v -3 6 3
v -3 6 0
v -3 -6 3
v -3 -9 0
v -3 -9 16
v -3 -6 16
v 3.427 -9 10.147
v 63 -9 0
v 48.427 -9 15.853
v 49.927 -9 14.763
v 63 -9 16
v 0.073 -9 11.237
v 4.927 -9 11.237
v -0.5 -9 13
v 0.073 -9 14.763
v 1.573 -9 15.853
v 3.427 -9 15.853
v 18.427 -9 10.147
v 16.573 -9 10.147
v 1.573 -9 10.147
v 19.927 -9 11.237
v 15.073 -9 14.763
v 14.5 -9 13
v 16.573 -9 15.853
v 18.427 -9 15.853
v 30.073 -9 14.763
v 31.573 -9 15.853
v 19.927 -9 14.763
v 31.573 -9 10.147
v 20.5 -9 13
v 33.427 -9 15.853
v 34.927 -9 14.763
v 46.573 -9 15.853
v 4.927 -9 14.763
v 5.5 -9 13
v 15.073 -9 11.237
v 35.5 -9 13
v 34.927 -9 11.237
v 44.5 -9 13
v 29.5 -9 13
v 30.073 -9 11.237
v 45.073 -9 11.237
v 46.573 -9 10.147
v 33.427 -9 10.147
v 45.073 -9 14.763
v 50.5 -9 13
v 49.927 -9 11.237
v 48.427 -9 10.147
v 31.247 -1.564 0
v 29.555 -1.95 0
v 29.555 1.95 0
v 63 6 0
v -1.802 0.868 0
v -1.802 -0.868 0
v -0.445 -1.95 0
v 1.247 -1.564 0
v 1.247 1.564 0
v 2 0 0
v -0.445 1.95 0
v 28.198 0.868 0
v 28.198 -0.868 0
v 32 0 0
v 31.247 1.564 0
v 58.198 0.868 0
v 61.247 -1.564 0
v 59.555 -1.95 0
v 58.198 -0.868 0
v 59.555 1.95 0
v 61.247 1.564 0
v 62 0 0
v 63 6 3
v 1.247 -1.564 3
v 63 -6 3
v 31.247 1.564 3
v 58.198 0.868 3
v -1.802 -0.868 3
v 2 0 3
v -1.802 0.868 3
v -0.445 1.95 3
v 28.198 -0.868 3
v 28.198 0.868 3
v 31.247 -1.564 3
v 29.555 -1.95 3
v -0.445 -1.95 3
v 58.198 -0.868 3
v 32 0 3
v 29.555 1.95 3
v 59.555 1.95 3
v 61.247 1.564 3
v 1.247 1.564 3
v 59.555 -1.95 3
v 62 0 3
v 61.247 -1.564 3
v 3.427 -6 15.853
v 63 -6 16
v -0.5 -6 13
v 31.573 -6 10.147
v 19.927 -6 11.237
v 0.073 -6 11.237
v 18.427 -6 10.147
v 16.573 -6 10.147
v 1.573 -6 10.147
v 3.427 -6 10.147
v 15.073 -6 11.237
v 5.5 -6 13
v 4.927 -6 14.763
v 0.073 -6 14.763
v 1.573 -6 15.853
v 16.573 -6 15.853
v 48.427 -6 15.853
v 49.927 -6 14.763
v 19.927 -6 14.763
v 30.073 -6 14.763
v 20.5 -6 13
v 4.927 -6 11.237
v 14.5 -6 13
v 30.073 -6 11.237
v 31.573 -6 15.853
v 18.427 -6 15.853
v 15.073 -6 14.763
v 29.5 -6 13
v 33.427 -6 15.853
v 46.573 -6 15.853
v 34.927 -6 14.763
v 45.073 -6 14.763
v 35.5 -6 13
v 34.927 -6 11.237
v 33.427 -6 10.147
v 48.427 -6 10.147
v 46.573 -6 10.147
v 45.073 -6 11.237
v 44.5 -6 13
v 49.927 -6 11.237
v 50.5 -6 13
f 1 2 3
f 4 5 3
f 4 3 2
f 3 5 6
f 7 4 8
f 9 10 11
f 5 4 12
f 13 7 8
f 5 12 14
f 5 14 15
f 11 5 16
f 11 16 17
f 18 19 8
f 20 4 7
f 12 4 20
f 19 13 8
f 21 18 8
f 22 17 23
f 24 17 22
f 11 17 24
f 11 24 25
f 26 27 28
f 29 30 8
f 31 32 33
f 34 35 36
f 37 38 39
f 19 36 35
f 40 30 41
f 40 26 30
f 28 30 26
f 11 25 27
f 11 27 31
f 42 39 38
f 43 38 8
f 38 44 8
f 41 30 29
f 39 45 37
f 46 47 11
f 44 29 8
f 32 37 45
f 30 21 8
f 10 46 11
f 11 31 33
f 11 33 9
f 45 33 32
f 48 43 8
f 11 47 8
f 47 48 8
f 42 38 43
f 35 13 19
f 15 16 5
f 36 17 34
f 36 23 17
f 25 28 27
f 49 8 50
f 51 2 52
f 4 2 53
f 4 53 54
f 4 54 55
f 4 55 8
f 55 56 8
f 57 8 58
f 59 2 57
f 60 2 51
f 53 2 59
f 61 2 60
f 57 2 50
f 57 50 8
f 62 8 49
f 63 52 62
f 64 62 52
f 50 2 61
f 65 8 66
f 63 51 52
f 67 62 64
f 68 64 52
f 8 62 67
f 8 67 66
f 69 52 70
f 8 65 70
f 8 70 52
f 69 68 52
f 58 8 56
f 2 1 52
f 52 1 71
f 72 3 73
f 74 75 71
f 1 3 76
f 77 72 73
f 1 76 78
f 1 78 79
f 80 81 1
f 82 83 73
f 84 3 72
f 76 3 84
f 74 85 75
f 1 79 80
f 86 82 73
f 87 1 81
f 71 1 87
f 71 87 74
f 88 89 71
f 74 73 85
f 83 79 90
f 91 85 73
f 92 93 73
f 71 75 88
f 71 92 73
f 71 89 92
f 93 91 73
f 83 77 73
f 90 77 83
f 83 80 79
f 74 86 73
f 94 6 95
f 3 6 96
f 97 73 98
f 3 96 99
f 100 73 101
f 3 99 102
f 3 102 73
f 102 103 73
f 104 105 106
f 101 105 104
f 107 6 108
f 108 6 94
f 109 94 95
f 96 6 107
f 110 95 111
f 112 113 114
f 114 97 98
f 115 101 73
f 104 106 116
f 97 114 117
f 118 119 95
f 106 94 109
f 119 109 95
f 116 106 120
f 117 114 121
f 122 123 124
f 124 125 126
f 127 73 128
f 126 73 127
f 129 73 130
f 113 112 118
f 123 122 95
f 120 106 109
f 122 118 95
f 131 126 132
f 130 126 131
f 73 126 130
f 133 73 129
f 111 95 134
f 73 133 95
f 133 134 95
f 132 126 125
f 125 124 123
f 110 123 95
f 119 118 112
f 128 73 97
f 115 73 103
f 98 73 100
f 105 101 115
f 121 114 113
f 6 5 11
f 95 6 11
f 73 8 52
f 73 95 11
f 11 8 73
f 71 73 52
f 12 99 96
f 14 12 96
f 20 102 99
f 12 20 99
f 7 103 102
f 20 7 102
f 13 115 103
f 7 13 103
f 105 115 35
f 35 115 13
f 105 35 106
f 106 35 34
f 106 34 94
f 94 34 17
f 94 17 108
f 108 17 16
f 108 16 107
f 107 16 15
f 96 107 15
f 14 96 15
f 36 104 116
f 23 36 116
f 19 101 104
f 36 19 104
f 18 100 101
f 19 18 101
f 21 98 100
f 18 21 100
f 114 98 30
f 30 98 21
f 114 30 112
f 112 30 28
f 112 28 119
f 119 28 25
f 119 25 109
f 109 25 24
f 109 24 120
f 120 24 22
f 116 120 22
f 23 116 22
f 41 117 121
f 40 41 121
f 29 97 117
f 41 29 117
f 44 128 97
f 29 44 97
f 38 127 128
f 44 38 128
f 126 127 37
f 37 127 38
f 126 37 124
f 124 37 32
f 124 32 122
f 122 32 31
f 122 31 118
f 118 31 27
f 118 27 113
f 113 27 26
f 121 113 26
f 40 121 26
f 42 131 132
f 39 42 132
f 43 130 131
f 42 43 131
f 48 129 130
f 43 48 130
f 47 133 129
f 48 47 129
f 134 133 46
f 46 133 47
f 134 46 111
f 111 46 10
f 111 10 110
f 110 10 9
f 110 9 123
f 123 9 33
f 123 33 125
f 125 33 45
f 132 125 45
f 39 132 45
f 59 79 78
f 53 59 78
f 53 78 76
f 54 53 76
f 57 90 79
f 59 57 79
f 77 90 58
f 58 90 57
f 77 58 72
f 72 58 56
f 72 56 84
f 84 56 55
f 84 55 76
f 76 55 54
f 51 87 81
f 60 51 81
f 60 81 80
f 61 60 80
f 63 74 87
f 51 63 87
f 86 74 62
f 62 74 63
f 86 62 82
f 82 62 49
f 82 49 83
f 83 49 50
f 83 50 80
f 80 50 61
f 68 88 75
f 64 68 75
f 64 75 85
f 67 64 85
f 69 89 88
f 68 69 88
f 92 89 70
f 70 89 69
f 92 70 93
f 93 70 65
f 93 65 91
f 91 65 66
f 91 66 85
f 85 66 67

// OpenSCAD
peekSpacing = 30;
wallThickness = 3;
fastnerRadius = 2;
fastnerHeadRadius = 4;
fastnerHeadHeight = 3;
smaRadius = 3;
smaHeadRadius = 5;

blockWidth  = peekSpacing*2 + wallThickness*2;
blockHeight = wallThickness + smaHeadRadius*2 + fastnerHeadHeight;
blockDepth  = wallThickness + fastnerHeadRadius*3;

difference() {
    translate([-wallThickness, -wallThickness-fastnerHeadRadius*1.5, 0]) {
        union() {
            cube([blockWidth, blockDepth,   wallThickness]);
            cube([blockWidth, wallThickness, blockHeight]);
        }
    }
    for (x = [0 : peekSpacing : peekSpacing*2]) {
        translate([x, 0, -1]) cylinder(r=fastnerRadius, h=wallThickness*2);
    }
    rotate([90, 0, 0]) {
        for (x = [smaHeadRadius/2 : smaHeadRadius*3 : smaHeadRadius*10]) {
            translate([x, wallThickness+smaHeadRadius*2, 0]) cylinder(r=smaRadius, h=100);
        }
    }
}
